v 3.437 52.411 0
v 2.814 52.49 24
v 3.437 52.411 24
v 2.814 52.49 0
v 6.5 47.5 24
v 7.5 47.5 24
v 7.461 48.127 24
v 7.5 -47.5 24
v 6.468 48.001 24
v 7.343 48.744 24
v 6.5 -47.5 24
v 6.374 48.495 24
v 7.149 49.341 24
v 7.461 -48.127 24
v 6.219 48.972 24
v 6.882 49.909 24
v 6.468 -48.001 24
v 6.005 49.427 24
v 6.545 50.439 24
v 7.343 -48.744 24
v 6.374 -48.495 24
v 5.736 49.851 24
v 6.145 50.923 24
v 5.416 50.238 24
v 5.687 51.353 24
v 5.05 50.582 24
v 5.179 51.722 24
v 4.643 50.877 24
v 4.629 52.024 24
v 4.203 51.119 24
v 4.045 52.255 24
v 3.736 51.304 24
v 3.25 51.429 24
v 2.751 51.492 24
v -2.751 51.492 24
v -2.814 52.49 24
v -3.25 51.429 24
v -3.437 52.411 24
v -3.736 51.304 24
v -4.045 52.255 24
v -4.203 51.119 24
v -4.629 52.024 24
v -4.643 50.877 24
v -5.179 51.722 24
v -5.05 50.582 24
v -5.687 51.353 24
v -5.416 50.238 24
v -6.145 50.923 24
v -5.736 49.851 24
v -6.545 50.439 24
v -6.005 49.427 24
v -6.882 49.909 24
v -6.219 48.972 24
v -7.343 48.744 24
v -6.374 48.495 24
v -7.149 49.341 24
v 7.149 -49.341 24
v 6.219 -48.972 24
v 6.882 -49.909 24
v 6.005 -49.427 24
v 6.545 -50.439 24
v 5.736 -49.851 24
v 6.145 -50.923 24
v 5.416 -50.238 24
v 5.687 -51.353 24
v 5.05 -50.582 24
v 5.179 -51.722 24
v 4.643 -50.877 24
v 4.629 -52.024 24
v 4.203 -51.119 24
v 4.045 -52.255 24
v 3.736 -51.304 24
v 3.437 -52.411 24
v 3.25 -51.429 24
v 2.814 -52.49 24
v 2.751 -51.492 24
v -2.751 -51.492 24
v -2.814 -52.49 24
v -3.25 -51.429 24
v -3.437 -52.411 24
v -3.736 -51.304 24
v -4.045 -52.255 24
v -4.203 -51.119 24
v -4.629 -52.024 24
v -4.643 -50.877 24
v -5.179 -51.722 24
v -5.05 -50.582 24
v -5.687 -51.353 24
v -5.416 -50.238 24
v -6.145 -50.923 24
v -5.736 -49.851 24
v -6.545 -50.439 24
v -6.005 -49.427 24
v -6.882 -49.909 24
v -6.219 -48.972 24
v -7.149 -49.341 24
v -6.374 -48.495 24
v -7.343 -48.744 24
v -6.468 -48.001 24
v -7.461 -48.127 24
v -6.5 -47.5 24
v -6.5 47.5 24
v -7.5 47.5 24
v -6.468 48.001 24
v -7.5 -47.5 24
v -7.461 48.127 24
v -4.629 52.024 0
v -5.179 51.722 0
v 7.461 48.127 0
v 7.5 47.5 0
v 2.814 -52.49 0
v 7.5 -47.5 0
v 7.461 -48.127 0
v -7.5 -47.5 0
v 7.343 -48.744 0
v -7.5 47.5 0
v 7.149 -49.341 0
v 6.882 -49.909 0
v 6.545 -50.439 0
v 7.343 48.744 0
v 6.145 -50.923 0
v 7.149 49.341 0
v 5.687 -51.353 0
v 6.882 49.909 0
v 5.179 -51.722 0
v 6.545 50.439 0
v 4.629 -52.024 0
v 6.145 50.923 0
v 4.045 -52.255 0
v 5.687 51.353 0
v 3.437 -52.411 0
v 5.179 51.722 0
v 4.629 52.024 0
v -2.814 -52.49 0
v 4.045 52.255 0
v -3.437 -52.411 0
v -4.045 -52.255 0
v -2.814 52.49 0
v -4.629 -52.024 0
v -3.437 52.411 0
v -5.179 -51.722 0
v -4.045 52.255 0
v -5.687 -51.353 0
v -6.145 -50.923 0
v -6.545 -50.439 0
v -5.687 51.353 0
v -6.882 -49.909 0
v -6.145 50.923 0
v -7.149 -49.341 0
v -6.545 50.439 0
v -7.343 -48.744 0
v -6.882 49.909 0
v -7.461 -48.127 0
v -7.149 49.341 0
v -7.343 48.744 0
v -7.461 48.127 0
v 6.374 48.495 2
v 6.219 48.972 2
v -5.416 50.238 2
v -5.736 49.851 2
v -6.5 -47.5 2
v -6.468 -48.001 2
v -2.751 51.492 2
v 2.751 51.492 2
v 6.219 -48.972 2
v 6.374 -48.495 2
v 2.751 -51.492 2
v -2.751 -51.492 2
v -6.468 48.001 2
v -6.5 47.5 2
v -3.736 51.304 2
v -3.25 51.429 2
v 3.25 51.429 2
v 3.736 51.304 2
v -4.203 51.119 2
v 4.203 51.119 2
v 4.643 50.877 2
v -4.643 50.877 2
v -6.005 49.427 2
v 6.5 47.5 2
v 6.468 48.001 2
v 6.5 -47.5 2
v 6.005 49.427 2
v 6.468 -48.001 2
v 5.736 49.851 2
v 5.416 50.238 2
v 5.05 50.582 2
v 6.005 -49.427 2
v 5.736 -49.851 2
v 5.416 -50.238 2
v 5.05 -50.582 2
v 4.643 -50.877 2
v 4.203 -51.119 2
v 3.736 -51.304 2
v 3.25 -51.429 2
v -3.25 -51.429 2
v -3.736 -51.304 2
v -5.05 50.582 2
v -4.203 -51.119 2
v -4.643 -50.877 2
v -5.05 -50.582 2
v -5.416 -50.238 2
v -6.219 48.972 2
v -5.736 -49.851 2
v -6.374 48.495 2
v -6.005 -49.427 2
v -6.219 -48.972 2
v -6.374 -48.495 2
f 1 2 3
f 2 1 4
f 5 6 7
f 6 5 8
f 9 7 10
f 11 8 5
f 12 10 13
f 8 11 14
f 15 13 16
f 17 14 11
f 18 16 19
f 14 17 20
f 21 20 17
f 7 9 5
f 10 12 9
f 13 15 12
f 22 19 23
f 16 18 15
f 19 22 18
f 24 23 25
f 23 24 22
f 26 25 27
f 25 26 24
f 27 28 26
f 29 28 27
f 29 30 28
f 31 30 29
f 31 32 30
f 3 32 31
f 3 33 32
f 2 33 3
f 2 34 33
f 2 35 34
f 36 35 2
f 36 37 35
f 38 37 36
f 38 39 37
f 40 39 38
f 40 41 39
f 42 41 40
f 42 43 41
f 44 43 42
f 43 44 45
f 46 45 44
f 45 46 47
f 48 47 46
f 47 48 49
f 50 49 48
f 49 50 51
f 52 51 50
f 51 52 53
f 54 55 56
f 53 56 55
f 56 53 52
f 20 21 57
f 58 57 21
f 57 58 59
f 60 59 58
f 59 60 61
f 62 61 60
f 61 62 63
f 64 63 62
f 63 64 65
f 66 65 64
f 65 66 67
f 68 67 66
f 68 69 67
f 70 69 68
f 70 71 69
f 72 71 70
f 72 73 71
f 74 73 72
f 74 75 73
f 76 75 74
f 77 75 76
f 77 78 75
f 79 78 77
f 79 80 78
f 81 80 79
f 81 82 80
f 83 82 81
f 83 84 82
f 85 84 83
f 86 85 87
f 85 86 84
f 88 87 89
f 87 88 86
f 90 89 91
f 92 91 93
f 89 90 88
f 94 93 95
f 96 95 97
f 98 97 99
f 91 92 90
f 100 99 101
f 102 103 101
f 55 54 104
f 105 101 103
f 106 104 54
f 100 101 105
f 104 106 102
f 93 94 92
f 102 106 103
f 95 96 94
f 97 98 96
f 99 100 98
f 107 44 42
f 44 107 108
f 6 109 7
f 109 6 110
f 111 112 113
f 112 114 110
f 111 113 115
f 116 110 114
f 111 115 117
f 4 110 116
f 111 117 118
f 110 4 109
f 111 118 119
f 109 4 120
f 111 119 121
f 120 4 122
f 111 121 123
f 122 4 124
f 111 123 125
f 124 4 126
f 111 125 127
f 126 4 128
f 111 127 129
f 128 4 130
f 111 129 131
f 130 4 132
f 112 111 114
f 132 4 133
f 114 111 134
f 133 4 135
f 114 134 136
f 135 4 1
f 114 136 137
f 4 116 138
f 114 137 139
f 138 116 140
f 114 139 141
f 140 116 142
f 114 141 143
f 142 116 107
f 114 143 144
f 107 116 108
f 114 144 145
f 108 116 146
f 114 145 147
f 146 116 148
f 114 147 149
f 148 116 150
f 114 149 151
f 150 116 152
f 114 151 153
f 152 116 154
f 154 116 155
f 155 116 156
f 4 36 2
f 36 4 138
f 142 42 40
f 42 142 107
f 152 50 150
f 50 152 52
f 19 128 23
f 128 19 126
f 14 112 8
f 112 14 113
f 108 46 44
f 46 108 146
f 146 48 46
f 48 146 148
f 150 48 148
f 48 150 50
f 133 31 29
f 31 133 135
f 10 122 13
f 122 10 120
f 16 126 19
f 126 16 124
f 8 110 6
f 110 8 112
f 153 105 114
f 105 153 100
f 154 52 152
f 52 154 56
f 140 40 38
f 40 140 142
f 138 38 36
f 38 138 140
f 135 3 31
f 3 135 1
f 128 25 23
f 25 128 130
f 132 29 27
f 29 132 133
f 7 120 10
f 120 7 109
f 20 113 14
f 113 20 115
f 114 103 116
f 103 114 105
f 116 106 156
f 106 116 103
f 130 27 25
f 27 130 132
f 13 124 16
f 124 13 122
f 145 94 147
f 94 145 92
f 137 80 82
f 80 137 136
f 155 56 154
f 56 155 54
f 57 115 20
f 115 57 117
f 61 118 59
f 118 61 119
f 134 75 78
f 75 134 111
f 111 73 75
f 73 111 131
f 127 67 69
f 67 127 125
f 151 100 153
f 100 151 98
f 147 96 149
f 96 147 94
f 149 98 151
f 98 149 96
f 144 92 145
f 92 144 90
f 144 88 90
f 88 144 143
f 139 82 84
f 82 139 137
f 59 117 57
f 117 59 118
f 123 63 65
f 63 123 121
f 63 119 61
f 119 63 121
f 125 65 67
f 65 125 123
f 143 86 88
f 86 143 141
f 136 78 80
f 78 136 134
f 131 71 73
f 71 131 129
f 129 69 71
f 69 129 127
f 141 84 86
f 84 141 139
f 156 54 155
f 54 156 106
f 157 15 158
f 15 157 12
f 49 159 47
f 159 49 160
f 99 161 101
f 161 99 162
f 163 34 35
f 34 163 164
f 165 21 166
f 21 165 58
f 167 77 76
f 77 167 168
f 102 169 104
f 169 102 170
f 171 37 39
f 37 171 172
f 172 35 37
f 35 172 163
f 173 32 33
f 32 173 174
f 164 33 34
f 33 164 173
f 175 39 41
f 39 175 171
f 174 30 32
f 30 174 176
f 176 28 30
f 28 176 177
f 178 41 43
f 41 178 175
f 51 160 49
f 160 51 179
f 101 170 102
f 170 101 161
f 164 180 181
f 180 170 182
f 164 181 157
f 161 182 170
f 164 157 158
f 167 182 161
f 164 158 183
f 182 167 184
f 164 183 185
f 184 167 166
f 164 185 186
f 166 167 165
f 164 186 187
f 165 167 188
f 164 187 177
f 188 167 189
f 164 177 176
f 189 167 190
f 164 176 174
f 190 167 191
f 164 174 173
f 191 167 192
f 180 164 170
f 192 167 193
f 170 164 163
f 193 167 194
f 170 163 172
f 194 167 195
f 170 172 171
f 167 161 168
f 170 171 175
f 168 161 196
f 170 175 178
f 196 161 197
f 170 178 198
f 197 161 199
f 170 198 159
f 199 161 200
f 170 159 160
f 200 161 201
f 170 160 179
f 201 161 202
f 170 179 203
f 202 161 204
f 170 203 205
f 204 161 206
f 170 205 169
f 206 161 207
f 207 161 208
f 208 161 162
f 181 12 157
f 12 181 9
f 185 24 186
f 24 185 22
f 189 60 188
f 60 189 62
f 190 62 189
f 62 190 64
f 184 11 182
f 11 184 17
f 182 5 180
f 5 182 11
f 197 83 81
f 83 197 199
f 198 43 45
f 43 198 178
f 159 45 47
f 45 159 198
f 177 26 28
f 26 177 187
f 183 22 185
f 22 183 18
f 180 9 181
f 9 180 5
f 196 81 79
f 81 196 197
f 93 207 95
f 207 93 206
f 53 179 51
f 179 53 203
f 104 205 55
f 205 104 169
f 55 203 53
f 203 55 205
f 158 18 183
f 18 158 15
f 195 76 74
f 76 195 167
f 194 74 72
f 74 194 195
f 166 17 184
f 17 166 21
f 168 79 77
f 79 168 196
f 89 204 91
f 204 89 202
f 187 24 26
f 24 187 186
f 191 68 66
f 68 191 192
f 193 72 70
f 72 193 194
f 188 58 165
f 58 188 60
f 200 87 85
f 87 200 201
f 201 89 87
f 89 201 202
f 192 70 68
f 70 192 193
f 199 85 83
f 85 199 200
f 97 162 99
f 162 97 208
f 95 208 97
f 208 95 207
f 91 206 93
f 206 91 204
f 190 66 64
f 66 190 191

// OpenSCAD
$fn = 50;


difference() {
	union() {
		hull() {
			translate(v = [-2.5000000000, 47.5000000000, 0]) {
				cylinder(h = 24, r = 5);
			}
			translate(v = [2.5000000000, 47.5000000000, 0]) {
				cylinder(h = 24, r = 5);
			}
			translate(v = [-2.5000000000, -47.5000000000, 0]) {
				cylinder(h = 24, r = 5);
			}
			translate(v = [2.5000000000, -47.5000000000, 0]) {
				cylinder(h = 24, r = 5);
			}
		}
	}
	union() {
		translate(v = [0, 0, 2]) {
			hull() {
				translate(v = [-2.5000000000, 47.5000000000, 0]) {
					cylinder(h = 22, r = 4);
				}
				translate(v = [2.5000000000, 47.5000000000, 0]) {
					cylinder(h = 22, r = 4);
				}
				translate(v = [-2.5000000000, -47.5000000000, 0]) {
					cylinder(h = 22, r = 4);
				}
				translate(v = [2.5000000000, -47.5000000000, 0]) {
					cylinder(h = 22, r = 4);
				}
			}
		}
	}
}
